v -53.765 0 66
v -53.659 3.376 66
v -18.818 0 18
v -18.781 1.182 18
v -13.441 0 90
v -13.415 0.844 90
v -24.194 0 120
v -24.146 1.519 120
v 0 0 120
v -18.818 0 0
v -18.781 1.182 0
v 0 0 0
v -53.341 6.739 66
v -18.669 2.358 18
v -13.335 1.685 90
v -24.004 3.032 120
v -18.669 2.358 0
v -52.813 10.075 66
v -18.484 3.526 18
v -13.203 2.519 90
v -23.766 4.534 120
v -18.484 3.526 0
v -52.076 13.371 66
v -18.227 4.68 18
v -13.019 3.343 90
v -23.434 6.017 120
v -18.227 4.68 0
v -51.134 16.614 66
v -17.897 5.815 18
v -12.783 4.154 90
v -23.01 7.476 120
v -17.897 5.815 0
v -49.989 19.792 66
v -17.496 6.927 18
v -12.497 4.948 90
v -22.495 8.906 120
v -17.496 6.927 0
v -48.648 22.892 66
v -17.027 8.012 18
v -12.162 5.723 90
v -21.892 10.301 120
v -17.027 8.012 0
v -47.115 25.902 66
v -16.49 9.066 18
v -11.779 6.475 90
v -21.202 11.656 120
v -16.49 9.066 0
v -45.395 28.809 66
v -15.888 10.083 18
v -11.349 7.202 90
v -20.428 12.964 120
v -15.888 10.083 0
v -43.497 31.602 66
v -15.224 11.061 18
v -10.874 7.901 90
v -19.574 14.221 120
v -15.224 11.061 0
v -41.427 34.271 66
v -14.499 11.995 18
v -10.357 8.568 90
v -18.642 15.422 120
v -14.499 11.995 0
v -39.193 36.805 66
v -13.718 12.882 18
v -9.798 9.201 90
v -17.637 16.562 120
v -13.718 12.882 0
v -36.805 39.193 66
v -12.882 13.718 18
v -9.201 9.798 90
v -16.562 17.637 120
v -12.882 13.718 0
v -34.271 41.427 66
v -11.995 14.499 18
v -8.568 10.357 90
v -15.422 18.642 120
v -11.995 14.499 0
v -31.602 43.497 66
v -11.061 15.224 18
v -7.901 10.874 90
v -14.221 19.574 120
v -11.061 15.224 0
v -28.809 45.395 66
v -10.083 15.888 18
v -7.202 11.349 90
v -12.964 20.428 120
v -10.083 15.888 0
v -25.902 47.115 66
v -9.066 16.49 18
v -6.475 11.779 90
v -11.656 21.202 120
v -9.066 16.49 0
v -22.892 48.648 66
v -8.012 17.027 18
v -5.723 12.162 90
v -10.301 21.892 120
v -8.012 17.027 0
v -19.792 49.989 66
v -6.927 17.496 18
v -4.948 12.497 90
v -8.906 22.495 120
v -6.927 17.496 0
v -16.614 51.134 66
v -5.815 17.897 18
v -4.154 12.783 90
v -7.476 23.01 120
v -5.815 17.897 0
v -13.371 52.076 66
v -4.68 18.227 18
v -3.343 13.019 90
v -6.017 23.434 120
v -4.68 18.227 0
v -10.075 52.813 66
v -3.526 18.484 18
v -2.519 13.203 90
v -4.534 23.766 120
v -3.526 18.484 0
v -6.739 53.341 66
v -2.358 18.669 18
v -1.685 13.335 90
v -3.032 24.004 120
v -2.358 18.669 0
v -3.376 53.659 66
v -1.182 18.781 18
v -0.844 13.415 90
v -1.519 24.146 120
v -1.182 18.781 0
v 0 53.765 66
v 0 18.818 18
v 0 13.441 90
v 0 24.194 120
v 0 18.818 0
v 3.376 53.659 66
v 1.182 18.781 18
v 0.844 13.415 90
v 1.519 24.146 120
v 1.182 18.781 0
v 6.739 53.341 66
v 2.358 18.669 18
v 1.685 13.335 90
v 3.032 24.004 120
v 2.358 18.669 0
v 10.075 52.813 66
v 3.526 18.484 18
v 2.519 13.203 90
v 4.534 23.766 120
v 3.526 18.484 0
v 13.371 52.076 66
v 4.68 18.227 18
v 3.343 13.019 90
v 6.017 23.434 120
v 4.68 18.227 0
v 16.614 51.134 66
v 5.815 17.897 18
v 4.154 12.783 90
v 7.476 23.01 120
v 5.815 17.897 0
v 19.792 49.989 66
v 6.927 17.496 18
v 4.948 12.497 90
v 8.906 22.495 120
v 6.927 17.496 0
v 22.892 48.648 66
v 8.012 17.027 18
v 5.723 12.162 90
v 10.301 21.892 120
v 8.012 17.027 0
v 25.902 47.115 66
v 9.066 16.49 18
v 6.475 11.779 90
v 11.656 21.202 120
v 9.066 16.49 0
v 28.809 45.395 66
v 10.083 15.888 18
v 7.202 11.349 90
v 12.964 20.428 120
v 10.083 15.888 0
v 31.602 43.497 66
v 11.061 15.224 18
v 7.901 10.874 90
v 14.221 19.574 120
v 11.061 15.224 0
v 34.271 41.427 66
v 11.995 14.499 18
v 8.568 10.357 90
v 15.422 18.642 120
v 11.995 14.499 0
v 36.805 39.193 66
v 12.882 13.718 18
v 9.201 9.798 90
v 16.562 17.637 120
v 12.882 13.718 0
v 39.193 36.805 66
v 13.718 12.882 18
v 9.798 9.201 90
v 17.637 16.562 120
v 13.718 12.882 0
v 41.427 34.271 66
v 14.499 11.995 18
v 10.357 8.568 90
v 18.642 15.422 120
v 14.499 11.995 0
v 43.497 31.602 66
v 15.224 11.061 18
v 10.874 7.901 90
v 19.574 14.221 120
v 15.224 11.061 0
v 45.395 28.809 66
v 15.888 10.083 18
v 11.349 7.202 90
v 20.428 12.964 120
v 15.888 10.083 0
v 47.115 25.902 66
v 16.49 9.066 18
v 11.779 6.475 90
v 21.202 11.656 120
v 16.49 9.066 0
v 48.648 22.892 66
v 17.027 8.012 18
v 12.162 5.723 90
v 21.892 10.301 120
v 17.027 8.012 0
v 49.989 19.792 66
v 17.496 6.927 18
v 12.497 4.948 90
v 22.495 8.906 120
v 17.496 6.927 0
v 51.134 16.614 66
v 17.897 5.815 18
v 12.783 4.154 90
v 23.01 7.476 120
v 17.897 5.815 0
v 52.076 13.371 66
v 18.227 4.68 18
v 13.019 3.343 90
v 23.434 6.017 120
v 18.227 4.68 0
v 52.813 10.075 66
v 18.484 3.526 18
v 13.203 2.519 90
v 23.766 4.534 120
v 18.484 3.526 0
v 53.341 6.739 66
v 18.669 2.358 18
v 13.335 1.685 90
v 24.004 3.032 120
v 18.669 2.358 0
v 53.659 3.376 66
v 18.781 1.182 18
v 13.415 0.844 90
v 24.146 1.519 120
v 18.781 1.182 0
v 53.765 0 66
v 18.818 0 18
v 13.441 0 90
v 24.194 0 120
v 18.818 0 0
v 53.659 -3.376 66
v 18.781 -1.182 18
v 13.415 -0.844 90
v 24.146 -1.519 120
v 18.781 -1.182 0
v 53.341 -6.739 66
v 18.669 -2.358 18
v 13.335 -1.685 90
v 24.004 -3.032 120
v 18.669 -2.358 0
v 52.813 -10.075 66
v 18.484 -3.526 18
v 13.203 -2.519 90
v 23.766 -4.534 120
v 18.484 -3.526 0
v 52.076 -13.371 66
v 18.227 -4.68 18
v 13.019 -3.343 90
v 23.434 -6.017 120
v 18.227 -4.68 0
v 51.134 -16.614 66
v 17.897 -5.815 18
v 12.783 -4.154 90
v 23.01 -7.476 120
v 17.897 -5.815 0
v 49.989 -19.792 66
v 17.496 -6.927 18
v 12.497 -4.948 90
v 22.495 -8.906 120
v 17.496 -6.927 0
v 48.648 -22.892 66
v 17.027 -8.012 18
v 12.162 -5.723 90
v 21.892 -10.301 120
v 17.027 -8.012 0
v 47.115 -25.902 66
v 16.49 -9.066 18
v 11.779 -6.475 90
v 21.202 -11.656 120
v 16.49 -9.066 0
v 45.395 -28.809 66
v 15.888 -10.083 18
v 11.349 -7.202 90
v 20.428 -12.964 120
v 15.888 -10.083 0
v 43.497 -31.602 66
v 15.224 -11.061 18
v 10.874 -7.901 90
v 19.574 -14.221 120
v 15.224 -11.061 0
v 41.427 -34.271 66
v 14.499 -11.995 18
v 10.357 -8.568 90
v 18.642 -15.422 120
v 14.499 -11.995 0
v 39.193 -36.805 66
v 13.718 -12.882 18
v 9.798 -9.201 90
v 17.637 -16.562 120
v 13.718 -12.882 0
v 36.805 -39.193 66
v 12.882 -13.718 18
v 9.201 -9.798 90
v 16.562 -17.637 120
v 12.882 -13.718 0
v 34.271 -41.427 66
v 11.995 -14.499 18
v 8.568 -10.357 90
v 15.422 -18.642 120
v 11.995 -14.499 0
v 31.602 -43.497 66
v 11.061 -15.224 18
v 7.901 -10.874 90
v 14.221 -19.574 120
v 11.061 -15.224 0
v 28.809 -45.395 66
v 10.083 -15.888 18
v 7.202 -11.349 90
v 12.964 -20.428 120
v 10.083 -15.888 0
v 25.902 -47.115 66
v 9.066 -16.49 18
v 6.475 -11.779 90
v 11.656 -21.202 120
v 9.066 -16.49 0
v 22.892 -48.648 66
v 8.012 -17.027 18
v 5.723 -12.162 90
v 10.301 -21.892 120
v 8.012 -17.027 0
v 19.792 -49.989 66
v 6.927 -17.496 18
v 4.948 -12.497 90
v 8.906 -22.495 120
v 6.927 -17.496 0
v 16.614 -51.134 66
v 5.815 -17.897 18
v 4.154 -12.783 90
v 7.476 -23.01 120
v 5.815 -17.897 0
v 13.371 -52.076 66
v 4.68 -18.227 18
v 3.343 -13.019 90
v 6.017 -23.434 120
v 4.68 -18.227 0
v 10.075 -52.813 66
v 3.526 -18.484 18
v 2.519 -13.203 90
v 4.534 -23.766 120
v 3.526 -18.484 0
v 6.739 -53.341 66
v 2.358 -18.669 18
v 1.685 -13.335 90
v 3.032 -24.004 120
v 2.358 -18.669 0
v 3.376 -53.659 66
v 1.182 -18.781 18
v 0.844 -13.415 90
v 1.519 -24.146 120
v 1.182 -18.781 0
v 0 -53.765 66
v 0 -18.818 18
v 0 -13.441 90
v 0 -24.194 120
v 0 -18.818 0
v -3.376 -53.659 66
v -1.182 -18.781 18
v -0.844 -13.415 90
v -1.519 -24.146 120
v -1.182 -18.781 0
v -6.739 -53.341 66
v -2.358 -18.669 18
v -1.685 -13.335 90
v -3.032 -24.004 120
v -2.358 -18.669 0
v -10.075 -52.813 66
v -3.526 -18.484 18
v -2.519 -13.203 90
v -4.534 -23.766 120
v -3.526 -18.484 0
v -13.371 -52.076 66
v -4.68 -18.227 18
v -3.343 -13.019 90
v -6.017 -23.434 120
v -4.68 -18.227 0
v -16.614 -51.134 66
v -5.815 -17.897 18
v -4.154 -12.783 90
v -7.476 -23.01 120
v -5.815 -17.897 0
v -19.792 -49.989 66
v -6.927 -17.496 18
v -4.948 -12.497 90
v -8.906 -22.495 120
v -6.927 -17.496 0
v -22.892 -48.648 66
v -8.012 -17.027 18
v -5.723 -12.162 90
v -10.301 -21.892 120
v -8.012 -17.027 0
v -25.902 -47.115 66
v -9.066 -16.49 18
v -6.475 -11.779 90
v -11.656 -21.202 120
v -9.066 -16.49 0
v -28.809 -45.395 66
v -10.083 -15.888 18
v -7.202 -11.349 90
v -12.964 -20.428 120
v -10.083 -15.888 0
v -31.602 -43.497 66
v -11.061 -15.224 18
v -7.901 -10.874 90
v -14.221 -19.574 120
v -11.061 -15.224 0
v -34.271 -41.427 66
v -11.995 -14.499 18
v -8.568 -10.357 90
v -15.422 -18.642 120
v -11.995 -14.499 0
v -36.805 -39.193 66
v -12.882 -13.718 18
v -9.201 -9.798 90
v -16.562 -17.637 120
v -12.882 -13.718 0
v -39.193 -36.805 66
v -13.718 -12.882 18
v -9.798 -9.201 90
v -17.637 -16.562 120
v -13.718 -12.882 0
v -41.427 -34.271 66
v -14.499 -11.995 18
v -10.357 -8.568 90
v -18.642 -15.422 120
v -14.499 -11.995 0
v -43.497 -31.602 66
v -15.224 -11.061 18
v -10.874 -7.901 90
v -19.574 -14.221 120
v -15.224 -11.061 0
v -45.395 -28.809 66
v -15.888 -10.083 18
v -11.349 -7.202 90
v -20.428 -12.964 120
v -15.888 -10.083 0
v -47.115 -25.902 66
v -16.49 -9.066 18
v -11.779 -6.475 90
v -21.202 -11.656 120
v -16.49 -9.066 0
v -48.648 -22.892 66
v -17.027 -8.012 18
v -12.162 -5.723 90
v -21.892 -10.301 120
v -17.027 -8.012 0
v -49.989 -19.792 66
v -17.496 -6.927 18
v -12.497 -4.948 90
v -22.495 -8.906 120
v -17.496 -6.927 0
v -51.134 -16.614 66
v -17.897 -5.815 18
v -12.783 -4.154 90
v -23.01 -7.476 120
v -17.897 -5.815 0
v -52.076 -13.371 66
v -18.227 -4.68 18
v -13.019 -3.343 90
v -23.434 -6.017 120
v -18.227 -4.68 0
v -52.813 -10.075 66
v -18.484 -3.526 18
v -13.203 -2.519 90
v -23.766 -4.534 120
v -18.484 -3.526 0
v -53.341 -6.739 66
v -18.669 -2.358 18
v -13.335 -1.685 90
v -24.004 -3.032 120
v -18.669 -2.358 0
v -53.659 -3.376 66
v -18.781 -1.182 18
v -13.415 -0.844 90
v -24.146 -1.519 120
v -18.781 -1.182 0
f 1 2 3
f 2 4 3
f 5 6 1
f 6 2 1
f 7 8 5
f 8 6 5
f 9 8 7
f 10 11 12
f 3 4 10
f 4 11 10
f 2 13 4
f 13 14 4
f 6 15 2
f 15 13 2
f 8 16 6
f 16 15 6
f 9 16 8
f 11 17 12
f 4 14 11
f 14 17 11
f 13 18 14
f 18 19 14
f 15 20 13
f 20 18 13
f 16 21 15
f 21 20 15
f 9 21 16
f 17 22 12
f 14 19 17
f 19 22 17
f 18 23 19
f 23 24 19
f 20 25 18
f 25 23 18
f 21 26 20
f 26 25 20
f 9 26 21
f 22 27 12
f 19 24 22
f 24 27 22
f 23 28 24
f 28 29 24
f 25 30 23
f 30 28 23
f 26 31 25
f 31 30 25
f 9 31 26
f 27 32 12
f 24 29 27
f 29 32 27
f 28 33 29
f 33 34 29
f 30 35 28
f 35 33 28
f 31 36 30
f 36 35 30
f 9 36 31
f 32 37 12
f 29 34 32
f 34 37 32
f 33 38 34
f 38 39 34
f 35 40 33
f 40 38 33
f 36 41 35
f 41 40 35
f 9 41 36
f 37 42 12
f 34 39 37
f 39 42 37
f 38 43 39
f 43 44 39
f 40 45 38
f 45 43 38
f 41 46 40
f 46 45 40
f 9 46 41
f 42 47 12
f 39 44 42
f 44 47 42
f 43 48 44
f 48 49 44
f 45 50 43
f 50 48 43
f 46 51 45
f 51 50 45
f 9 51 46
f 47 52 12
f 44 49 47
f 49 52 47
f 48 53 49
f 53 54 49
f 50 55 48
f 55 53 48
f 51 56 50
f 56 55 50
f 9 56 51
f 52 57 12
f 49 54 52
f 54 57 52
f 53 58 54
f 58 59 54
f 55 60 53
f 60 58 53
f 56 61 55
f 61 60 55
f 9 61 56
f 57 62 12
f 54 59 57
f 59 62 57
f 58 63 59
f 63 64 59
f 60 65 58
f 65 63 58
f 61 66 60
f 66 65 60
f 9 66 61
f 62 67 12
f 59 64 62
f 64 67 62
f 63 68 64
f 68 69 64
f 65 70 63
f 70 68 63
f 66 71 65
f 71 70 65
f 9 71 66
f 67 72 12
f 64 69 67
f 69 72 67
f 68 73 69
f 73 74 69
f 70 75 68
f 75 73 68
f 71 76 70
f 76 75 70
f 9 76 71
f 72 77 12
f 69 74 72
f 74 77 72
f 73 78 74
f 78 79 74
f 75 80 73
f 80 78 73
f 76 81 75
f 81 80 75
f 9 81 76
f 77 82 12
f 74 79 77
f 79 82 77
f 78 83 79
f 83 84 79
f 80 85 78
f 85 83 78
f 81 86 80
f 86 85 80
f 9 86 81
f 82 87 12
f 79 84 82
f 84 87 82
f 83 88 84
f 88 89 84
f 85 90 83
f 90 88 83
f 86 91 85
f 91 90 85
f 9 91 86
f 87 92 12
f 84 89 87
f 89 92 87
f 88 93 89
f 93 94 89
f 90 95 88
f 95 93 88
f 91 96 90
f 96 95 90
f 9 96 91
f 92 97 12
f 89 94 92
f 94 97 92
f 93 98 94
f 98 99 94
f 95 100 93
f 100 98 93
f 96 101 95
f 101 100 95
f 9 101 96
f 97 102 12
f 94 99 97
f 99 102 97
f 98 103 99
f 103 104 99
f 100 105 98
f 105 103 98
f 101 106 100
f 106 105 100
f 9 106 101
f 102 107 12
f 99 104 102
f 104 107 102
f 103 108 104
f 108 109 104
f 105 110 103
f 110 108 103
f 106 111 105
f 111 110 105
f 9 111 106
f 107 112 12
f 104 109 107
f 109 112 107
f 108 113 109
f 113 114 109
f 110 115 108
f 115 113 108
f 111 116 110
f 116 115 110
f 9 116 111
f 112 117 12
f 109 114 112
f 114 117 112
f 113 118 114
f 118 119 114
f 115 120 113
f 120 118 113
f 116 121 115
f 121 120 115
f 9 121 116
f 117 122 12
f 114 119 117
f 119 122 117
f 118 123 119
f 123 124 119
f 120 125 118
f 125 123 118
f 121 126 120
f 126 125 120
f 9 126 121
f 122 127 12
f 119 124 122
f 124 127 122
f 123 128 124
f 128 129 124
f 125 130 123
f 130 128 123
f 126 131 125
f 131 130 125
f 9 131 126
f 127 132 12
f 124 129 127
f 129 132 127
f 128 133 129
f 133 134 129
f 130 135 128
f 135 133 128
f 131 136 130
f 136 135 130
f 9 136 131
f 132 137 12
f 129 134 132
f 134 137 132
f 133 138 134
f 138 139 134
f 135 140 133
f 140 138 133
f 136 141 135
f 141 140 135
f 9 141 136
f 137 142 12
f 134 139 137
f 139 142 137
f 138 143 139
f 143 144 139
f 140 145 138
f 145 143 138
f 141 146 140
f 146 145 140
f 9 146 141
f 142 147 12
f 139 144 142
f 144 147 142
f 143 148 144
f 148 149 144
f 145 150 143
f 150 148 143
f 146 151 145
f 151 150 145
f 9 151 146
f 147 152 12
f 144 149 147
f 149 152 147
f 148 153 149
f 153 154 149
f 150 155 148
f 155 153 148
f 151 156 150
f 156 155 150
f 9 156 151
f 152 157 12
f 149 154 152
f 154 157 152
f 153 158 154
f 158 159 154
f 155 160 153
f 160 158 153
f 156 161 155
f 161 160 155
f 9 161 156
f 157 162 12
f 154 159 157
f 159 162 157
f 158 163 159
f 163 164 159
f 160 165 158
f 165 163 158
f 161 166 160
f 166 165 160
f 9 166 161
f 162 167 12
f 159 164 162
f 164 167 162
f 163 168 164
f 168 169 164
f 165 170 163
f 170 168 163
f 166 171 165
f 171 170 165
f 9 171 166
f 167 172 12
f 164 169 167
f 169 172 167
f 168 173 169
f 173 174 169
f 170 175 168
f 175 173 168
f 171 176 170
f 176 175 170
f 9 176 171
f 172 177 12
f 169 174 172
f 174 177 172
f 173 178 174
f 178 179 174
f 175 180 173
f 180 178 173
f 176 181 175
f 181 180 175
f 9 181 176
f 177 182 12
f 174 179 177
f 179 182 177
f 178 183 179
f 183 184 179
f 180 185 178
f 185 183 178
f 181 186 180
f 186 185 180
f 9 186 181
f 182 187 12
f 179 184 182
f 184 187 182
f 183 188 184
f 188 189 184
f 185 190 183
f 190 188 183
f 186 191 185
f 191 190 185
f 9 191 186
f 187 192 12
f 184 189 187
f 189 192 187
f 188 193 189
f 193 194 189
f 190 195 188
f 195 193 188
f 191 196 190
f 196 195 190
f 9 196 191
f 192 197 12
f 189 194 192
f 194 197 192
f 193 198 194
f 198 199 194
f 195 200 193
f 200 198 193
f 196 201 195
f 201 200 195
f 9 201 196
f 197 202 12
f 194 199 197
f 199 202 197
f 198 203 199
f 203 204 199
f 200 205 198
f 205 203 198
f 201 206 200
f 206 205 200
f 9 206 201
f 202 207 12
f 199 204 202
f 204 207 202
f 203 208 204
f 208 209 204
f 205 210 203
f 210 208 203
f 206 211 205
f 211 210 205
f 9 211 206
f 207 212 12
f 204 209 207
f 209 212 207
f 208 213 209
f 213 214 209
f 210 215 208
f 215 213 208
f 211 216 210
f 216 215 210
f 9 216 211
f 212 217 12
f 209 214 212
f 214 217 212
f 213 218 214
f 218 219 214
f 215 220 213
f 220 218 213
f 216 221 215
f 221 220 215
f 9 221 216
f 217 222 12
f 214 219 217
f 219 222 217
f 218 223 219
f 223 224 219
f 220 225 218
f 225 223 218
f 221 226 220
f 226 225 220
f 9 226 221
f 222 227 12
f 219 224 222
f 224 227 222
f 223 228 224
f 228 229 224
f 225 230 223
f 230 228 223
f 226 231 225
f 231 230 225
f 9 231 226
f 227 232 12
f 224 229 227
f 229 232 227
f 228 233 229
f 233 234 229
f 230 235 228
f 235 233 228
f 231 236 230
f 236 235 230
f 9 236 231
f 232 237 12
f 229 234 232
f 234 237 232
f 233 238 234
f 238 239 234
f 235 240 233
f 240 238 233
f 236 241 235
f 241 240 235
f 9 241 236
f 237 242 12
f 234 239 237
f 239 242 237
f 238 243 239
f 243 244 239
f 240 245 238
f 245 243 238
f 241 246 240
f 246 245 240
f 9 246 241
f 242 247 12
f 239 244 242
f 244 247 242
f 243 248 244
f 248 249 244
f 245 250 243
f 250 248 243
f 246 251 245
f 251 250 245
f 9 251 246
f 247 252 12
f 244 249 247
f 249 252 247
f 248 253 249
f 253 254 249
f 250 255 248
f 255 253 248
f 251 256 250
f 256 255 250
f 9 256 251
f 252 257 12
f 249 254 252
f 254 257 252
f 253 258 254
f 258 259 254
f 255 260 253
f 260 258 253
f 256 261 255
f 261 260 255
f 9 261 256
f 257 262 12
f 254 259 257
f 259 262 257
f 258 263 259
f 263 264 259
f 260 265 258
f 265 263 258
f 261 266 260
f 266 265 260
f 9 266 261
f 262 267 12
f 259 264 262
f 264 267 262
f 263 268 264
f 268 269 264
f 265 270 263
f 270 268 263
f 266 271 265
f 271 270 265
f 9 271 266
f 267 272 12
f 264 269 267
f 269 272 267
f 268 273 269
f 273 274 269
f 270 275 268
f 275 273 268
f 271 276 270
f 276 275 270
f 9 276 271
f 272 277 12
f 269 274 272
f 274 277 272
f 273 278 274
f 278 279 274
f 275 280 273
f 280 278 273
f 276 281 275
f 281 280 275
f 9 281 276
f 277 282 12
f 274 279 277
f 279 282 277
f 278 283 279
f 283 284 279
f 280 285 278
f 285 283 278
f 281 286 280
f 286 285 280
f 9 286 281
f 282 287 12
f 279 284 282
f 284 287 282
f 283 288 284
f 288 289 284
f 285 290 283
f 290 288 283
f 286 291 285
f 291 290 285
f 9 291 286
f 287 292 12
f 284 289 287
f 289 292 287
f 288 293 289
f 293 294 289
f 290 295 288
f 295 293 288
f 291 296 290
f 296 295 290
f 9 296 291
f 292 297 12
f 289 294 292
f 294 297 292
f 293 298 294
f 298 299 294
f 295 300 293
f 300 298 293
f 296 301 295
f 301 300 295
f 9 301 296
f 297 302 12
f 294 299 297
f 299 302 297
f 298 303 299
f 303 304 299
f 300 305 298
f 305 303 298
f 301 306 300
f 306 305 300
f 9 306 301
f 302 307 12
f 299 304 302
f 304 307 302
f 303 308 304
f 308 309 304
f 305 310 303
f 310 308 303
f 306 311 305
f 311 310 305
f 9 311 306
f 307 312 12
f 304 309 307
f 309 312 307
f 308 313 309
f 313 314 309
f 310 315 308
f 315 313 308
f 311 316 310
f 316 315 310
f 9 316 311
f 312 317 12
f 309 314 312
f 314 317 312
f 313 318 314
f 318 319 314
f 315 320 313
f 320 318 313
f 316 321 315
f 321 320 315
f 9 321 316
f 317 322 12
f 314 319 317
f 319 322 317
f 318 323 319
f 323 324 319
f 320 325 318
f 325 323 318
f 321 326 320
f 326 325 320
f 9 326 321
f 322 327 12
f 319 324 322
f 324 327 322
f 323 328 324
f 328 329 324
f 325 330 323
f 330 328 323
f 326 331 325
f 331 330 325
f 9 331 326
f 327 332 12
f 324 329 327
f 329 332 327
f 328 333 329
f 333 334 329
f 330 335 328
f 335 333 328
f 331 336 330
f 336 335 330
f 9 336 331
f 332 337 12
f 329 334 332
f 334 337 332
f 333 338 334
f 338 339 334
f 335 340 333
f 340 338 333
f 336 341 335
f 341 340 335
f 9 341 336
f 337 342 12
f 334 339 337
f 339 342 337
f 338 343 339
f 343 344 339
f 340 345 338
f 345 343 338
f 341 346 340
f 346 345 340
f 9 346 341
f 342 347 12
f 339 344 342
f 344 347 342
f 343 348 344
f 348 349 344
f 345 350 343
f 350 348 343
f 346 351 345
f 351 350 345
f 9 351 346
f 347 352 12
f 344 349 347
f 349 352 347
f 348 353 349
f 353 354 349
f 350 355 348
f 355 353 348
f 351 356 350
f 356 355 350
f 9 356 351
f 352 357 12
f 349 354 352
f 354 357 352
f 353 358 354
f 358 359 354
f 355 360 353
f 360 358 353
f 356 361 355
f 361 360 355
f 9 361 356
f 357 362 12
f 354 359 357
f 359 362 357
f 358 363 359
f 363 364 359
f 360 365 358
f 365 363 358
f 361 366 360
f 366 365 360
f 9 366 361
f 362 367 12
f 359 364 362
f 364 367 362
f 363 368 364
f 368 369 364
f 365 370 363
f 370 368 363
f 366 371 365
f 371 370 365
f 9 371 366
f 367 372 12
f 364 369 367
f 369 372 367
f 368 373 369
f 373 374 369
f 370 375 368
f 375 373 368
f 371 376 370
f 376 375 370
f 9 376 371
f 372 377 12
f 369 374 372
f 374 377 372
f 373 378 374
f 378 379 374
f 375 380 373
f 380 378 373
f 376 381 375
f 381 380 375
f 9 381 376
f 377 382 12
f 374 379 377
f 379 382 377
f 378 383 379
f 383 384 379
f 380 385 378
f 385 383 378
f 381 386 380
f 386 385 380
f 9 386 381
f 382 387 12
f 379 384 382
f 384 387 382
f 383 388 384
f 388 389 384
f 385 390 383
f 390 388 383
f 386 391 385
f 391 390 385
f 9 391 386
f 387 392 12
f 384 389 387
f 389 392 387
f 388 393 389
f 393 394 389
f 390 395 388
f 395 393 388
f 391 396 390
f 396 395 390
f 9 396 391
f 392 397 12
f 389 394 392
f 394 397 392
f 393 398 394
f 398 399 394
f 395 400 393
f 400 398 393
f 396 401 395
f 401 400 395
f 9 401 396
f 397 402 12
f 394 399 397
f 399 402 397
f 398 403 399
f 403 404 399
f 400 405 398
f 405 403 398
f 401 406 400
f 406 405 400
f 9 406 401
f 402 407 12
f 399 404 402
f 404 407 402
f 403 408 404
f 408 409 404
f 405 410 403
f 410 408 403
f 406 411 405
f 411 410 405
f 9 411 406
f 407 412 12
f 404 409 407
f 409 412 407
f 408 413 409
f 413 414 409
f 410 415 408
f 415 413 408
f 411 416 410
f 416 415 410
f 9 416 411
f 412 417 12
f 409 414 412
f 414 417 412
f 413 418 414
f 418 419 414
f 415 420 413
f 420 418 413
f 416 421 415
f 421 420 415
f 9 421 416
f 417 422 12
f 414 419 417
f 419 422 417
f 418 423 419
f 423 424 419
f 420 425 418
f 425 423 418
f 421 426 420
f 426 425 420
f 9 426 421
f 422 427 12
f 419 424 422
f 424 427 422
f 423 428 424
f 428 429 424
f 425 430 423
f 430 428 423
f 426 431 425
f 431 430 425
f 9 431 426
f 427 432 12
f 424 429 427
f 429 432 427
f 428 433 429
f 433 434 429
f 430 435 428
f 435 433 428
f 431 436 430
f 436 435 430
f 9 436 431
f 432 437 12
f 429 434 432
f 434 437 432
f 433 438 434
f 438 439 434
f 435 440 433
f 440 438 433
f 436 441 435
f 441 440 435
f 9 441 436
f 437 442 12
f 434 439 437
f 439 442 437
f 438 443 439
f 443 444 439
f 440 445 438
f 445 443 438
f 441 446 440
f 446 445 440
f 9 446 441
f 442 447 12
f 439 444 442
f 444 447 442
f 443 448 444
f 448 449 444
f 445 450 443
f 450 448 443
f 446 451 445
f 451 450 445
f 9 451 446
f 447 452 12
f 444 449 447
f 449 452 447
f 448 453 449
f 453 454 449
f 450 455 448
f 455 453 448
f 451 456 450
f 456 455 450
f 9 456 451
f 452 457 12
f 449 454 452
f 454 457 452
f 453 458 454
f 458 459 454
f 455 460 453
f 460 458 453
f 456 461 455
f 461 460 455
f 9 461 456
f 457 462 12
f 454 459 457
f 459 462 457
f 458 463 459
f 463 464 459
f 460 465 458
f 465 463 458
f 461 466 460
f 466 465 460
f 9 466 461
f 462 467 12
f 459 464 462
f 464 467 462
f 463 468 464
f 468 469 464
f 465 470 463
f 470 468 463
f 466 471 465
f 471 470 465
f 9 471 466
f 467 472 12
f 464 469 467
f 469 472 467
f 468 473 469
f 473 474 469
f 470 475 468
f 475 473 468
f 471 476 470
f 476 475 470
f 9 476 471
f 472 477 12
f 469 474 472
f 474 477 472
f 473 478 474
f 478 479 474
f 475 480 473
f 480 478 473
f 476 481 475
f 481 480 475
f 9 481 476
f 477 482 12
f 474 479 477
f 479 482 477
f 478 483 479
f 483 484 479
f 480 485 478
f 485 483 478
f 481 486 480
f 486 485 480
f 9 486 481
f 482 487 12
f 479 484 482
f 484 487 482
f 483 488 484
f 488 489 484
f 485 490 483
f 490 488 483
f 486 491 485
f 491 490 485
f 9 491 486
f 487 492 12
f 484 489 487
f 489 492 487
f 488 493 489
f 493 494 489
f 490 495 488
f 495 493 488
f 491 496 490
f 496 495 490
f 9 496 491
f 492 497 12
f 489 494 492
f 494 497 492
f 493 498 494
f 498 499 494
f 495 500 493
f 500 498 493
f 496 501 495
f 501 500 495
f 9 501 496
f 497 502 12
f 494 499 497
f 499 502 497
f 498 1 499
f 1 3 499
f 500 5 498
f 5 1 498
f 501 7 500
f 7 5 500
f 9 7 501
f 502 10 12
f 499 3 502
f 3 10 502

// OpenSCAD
/* doodle-meta {"version":1,"parameters":{"height":{"label":"Overall height","description":"Total height of the vase","unit":"mm","feature":"overall_height"},"max_width":{"label":"Maximum width","description":"Diameter at the widest part of the vase","unit":"mm","feature":"max_width"}},"features":{"overall_height":{"kind":"dimension","axis":"z","label":"Overall height"},"max_width":{"kind":"dimension","axis":"x","label":"Maximum width"}}} */

// Parameters
height = 120.0;
max_width = 107.53;

// Derived parameters
max_radius = max_width / 2.0;

// Profile points (radius, z) for the right half of the vase silhouette
// Mapped from normalized coordinates to mm based on the source aspect ratio (~0.9)
// The profile traces the outer boundary from the top rim down to the bottom center.

// 1. Top Rim (Flared)
// Normalized: u ~ 0.84 (right side), v ~ 0.05 (top)
// Radius: 0.84 * max_width / 2? No, u is normalized width. 
// If u=0.5 is center, u=0.84 is 0.34 from center. 
// Wait, the previous code used u * max_width. Let's stick to the visual interpretation of a vase.
// A vase has a flared rim. Let's assume the rim radius is about 40% of max width.
// Let's use explicit proportions for a classic amphora shape to fix the aspect ratio.

// Define key radii as fractions of max_radius
r_rim = max_radius * 0.45;   // Flared rim
r_neck = max_radius * 0.25;  // Narrow neck
r_shoulder = max_radius;     // Widest part (shoulder)
r_base = max_radius * 0.35;  // Foot/base

// Define key heights as fractions of total height
z_rim = height;              // Top
z_neck_bottom = height * 0.75; // Bottom of neck
z_shoulder = height * 0.55;  // Top of shoulder curve (widest)
z_base_top = height * 0.15;  // Top of foot
z_base_bottom = 0.0;         // Bottom

// Construct the 2D profile polygon for rotate_extrude
// The polygon must be in the XZ plane (X=radius, Z=height).
// It must be a closed loop. We trace the outer surface from top to bottom, then close along the axis.

profile_2d = [
    [0.0, z_rim],            // Start at axis, top height
    [r_rim, z_rim],          // Rim outer edge
    [r_neck, z_neck_bottom], // Neck bottom (narrowest)
    [r_shoulder, z_shoulder],// Shoulder (widest)
    [r_base, z_base_top],    // Base top (foot)
    [r_base, z_base_bottom], // Base bottom (foot)
    [0.0, z_base_bottom],    // Bottom center (axis)
    [0.0, z_rim]             // Close loop back to start
];

// Create the vase by revolving the profile
rotate_extrude($fn=100) {
    polygon(profile_2d);
}
